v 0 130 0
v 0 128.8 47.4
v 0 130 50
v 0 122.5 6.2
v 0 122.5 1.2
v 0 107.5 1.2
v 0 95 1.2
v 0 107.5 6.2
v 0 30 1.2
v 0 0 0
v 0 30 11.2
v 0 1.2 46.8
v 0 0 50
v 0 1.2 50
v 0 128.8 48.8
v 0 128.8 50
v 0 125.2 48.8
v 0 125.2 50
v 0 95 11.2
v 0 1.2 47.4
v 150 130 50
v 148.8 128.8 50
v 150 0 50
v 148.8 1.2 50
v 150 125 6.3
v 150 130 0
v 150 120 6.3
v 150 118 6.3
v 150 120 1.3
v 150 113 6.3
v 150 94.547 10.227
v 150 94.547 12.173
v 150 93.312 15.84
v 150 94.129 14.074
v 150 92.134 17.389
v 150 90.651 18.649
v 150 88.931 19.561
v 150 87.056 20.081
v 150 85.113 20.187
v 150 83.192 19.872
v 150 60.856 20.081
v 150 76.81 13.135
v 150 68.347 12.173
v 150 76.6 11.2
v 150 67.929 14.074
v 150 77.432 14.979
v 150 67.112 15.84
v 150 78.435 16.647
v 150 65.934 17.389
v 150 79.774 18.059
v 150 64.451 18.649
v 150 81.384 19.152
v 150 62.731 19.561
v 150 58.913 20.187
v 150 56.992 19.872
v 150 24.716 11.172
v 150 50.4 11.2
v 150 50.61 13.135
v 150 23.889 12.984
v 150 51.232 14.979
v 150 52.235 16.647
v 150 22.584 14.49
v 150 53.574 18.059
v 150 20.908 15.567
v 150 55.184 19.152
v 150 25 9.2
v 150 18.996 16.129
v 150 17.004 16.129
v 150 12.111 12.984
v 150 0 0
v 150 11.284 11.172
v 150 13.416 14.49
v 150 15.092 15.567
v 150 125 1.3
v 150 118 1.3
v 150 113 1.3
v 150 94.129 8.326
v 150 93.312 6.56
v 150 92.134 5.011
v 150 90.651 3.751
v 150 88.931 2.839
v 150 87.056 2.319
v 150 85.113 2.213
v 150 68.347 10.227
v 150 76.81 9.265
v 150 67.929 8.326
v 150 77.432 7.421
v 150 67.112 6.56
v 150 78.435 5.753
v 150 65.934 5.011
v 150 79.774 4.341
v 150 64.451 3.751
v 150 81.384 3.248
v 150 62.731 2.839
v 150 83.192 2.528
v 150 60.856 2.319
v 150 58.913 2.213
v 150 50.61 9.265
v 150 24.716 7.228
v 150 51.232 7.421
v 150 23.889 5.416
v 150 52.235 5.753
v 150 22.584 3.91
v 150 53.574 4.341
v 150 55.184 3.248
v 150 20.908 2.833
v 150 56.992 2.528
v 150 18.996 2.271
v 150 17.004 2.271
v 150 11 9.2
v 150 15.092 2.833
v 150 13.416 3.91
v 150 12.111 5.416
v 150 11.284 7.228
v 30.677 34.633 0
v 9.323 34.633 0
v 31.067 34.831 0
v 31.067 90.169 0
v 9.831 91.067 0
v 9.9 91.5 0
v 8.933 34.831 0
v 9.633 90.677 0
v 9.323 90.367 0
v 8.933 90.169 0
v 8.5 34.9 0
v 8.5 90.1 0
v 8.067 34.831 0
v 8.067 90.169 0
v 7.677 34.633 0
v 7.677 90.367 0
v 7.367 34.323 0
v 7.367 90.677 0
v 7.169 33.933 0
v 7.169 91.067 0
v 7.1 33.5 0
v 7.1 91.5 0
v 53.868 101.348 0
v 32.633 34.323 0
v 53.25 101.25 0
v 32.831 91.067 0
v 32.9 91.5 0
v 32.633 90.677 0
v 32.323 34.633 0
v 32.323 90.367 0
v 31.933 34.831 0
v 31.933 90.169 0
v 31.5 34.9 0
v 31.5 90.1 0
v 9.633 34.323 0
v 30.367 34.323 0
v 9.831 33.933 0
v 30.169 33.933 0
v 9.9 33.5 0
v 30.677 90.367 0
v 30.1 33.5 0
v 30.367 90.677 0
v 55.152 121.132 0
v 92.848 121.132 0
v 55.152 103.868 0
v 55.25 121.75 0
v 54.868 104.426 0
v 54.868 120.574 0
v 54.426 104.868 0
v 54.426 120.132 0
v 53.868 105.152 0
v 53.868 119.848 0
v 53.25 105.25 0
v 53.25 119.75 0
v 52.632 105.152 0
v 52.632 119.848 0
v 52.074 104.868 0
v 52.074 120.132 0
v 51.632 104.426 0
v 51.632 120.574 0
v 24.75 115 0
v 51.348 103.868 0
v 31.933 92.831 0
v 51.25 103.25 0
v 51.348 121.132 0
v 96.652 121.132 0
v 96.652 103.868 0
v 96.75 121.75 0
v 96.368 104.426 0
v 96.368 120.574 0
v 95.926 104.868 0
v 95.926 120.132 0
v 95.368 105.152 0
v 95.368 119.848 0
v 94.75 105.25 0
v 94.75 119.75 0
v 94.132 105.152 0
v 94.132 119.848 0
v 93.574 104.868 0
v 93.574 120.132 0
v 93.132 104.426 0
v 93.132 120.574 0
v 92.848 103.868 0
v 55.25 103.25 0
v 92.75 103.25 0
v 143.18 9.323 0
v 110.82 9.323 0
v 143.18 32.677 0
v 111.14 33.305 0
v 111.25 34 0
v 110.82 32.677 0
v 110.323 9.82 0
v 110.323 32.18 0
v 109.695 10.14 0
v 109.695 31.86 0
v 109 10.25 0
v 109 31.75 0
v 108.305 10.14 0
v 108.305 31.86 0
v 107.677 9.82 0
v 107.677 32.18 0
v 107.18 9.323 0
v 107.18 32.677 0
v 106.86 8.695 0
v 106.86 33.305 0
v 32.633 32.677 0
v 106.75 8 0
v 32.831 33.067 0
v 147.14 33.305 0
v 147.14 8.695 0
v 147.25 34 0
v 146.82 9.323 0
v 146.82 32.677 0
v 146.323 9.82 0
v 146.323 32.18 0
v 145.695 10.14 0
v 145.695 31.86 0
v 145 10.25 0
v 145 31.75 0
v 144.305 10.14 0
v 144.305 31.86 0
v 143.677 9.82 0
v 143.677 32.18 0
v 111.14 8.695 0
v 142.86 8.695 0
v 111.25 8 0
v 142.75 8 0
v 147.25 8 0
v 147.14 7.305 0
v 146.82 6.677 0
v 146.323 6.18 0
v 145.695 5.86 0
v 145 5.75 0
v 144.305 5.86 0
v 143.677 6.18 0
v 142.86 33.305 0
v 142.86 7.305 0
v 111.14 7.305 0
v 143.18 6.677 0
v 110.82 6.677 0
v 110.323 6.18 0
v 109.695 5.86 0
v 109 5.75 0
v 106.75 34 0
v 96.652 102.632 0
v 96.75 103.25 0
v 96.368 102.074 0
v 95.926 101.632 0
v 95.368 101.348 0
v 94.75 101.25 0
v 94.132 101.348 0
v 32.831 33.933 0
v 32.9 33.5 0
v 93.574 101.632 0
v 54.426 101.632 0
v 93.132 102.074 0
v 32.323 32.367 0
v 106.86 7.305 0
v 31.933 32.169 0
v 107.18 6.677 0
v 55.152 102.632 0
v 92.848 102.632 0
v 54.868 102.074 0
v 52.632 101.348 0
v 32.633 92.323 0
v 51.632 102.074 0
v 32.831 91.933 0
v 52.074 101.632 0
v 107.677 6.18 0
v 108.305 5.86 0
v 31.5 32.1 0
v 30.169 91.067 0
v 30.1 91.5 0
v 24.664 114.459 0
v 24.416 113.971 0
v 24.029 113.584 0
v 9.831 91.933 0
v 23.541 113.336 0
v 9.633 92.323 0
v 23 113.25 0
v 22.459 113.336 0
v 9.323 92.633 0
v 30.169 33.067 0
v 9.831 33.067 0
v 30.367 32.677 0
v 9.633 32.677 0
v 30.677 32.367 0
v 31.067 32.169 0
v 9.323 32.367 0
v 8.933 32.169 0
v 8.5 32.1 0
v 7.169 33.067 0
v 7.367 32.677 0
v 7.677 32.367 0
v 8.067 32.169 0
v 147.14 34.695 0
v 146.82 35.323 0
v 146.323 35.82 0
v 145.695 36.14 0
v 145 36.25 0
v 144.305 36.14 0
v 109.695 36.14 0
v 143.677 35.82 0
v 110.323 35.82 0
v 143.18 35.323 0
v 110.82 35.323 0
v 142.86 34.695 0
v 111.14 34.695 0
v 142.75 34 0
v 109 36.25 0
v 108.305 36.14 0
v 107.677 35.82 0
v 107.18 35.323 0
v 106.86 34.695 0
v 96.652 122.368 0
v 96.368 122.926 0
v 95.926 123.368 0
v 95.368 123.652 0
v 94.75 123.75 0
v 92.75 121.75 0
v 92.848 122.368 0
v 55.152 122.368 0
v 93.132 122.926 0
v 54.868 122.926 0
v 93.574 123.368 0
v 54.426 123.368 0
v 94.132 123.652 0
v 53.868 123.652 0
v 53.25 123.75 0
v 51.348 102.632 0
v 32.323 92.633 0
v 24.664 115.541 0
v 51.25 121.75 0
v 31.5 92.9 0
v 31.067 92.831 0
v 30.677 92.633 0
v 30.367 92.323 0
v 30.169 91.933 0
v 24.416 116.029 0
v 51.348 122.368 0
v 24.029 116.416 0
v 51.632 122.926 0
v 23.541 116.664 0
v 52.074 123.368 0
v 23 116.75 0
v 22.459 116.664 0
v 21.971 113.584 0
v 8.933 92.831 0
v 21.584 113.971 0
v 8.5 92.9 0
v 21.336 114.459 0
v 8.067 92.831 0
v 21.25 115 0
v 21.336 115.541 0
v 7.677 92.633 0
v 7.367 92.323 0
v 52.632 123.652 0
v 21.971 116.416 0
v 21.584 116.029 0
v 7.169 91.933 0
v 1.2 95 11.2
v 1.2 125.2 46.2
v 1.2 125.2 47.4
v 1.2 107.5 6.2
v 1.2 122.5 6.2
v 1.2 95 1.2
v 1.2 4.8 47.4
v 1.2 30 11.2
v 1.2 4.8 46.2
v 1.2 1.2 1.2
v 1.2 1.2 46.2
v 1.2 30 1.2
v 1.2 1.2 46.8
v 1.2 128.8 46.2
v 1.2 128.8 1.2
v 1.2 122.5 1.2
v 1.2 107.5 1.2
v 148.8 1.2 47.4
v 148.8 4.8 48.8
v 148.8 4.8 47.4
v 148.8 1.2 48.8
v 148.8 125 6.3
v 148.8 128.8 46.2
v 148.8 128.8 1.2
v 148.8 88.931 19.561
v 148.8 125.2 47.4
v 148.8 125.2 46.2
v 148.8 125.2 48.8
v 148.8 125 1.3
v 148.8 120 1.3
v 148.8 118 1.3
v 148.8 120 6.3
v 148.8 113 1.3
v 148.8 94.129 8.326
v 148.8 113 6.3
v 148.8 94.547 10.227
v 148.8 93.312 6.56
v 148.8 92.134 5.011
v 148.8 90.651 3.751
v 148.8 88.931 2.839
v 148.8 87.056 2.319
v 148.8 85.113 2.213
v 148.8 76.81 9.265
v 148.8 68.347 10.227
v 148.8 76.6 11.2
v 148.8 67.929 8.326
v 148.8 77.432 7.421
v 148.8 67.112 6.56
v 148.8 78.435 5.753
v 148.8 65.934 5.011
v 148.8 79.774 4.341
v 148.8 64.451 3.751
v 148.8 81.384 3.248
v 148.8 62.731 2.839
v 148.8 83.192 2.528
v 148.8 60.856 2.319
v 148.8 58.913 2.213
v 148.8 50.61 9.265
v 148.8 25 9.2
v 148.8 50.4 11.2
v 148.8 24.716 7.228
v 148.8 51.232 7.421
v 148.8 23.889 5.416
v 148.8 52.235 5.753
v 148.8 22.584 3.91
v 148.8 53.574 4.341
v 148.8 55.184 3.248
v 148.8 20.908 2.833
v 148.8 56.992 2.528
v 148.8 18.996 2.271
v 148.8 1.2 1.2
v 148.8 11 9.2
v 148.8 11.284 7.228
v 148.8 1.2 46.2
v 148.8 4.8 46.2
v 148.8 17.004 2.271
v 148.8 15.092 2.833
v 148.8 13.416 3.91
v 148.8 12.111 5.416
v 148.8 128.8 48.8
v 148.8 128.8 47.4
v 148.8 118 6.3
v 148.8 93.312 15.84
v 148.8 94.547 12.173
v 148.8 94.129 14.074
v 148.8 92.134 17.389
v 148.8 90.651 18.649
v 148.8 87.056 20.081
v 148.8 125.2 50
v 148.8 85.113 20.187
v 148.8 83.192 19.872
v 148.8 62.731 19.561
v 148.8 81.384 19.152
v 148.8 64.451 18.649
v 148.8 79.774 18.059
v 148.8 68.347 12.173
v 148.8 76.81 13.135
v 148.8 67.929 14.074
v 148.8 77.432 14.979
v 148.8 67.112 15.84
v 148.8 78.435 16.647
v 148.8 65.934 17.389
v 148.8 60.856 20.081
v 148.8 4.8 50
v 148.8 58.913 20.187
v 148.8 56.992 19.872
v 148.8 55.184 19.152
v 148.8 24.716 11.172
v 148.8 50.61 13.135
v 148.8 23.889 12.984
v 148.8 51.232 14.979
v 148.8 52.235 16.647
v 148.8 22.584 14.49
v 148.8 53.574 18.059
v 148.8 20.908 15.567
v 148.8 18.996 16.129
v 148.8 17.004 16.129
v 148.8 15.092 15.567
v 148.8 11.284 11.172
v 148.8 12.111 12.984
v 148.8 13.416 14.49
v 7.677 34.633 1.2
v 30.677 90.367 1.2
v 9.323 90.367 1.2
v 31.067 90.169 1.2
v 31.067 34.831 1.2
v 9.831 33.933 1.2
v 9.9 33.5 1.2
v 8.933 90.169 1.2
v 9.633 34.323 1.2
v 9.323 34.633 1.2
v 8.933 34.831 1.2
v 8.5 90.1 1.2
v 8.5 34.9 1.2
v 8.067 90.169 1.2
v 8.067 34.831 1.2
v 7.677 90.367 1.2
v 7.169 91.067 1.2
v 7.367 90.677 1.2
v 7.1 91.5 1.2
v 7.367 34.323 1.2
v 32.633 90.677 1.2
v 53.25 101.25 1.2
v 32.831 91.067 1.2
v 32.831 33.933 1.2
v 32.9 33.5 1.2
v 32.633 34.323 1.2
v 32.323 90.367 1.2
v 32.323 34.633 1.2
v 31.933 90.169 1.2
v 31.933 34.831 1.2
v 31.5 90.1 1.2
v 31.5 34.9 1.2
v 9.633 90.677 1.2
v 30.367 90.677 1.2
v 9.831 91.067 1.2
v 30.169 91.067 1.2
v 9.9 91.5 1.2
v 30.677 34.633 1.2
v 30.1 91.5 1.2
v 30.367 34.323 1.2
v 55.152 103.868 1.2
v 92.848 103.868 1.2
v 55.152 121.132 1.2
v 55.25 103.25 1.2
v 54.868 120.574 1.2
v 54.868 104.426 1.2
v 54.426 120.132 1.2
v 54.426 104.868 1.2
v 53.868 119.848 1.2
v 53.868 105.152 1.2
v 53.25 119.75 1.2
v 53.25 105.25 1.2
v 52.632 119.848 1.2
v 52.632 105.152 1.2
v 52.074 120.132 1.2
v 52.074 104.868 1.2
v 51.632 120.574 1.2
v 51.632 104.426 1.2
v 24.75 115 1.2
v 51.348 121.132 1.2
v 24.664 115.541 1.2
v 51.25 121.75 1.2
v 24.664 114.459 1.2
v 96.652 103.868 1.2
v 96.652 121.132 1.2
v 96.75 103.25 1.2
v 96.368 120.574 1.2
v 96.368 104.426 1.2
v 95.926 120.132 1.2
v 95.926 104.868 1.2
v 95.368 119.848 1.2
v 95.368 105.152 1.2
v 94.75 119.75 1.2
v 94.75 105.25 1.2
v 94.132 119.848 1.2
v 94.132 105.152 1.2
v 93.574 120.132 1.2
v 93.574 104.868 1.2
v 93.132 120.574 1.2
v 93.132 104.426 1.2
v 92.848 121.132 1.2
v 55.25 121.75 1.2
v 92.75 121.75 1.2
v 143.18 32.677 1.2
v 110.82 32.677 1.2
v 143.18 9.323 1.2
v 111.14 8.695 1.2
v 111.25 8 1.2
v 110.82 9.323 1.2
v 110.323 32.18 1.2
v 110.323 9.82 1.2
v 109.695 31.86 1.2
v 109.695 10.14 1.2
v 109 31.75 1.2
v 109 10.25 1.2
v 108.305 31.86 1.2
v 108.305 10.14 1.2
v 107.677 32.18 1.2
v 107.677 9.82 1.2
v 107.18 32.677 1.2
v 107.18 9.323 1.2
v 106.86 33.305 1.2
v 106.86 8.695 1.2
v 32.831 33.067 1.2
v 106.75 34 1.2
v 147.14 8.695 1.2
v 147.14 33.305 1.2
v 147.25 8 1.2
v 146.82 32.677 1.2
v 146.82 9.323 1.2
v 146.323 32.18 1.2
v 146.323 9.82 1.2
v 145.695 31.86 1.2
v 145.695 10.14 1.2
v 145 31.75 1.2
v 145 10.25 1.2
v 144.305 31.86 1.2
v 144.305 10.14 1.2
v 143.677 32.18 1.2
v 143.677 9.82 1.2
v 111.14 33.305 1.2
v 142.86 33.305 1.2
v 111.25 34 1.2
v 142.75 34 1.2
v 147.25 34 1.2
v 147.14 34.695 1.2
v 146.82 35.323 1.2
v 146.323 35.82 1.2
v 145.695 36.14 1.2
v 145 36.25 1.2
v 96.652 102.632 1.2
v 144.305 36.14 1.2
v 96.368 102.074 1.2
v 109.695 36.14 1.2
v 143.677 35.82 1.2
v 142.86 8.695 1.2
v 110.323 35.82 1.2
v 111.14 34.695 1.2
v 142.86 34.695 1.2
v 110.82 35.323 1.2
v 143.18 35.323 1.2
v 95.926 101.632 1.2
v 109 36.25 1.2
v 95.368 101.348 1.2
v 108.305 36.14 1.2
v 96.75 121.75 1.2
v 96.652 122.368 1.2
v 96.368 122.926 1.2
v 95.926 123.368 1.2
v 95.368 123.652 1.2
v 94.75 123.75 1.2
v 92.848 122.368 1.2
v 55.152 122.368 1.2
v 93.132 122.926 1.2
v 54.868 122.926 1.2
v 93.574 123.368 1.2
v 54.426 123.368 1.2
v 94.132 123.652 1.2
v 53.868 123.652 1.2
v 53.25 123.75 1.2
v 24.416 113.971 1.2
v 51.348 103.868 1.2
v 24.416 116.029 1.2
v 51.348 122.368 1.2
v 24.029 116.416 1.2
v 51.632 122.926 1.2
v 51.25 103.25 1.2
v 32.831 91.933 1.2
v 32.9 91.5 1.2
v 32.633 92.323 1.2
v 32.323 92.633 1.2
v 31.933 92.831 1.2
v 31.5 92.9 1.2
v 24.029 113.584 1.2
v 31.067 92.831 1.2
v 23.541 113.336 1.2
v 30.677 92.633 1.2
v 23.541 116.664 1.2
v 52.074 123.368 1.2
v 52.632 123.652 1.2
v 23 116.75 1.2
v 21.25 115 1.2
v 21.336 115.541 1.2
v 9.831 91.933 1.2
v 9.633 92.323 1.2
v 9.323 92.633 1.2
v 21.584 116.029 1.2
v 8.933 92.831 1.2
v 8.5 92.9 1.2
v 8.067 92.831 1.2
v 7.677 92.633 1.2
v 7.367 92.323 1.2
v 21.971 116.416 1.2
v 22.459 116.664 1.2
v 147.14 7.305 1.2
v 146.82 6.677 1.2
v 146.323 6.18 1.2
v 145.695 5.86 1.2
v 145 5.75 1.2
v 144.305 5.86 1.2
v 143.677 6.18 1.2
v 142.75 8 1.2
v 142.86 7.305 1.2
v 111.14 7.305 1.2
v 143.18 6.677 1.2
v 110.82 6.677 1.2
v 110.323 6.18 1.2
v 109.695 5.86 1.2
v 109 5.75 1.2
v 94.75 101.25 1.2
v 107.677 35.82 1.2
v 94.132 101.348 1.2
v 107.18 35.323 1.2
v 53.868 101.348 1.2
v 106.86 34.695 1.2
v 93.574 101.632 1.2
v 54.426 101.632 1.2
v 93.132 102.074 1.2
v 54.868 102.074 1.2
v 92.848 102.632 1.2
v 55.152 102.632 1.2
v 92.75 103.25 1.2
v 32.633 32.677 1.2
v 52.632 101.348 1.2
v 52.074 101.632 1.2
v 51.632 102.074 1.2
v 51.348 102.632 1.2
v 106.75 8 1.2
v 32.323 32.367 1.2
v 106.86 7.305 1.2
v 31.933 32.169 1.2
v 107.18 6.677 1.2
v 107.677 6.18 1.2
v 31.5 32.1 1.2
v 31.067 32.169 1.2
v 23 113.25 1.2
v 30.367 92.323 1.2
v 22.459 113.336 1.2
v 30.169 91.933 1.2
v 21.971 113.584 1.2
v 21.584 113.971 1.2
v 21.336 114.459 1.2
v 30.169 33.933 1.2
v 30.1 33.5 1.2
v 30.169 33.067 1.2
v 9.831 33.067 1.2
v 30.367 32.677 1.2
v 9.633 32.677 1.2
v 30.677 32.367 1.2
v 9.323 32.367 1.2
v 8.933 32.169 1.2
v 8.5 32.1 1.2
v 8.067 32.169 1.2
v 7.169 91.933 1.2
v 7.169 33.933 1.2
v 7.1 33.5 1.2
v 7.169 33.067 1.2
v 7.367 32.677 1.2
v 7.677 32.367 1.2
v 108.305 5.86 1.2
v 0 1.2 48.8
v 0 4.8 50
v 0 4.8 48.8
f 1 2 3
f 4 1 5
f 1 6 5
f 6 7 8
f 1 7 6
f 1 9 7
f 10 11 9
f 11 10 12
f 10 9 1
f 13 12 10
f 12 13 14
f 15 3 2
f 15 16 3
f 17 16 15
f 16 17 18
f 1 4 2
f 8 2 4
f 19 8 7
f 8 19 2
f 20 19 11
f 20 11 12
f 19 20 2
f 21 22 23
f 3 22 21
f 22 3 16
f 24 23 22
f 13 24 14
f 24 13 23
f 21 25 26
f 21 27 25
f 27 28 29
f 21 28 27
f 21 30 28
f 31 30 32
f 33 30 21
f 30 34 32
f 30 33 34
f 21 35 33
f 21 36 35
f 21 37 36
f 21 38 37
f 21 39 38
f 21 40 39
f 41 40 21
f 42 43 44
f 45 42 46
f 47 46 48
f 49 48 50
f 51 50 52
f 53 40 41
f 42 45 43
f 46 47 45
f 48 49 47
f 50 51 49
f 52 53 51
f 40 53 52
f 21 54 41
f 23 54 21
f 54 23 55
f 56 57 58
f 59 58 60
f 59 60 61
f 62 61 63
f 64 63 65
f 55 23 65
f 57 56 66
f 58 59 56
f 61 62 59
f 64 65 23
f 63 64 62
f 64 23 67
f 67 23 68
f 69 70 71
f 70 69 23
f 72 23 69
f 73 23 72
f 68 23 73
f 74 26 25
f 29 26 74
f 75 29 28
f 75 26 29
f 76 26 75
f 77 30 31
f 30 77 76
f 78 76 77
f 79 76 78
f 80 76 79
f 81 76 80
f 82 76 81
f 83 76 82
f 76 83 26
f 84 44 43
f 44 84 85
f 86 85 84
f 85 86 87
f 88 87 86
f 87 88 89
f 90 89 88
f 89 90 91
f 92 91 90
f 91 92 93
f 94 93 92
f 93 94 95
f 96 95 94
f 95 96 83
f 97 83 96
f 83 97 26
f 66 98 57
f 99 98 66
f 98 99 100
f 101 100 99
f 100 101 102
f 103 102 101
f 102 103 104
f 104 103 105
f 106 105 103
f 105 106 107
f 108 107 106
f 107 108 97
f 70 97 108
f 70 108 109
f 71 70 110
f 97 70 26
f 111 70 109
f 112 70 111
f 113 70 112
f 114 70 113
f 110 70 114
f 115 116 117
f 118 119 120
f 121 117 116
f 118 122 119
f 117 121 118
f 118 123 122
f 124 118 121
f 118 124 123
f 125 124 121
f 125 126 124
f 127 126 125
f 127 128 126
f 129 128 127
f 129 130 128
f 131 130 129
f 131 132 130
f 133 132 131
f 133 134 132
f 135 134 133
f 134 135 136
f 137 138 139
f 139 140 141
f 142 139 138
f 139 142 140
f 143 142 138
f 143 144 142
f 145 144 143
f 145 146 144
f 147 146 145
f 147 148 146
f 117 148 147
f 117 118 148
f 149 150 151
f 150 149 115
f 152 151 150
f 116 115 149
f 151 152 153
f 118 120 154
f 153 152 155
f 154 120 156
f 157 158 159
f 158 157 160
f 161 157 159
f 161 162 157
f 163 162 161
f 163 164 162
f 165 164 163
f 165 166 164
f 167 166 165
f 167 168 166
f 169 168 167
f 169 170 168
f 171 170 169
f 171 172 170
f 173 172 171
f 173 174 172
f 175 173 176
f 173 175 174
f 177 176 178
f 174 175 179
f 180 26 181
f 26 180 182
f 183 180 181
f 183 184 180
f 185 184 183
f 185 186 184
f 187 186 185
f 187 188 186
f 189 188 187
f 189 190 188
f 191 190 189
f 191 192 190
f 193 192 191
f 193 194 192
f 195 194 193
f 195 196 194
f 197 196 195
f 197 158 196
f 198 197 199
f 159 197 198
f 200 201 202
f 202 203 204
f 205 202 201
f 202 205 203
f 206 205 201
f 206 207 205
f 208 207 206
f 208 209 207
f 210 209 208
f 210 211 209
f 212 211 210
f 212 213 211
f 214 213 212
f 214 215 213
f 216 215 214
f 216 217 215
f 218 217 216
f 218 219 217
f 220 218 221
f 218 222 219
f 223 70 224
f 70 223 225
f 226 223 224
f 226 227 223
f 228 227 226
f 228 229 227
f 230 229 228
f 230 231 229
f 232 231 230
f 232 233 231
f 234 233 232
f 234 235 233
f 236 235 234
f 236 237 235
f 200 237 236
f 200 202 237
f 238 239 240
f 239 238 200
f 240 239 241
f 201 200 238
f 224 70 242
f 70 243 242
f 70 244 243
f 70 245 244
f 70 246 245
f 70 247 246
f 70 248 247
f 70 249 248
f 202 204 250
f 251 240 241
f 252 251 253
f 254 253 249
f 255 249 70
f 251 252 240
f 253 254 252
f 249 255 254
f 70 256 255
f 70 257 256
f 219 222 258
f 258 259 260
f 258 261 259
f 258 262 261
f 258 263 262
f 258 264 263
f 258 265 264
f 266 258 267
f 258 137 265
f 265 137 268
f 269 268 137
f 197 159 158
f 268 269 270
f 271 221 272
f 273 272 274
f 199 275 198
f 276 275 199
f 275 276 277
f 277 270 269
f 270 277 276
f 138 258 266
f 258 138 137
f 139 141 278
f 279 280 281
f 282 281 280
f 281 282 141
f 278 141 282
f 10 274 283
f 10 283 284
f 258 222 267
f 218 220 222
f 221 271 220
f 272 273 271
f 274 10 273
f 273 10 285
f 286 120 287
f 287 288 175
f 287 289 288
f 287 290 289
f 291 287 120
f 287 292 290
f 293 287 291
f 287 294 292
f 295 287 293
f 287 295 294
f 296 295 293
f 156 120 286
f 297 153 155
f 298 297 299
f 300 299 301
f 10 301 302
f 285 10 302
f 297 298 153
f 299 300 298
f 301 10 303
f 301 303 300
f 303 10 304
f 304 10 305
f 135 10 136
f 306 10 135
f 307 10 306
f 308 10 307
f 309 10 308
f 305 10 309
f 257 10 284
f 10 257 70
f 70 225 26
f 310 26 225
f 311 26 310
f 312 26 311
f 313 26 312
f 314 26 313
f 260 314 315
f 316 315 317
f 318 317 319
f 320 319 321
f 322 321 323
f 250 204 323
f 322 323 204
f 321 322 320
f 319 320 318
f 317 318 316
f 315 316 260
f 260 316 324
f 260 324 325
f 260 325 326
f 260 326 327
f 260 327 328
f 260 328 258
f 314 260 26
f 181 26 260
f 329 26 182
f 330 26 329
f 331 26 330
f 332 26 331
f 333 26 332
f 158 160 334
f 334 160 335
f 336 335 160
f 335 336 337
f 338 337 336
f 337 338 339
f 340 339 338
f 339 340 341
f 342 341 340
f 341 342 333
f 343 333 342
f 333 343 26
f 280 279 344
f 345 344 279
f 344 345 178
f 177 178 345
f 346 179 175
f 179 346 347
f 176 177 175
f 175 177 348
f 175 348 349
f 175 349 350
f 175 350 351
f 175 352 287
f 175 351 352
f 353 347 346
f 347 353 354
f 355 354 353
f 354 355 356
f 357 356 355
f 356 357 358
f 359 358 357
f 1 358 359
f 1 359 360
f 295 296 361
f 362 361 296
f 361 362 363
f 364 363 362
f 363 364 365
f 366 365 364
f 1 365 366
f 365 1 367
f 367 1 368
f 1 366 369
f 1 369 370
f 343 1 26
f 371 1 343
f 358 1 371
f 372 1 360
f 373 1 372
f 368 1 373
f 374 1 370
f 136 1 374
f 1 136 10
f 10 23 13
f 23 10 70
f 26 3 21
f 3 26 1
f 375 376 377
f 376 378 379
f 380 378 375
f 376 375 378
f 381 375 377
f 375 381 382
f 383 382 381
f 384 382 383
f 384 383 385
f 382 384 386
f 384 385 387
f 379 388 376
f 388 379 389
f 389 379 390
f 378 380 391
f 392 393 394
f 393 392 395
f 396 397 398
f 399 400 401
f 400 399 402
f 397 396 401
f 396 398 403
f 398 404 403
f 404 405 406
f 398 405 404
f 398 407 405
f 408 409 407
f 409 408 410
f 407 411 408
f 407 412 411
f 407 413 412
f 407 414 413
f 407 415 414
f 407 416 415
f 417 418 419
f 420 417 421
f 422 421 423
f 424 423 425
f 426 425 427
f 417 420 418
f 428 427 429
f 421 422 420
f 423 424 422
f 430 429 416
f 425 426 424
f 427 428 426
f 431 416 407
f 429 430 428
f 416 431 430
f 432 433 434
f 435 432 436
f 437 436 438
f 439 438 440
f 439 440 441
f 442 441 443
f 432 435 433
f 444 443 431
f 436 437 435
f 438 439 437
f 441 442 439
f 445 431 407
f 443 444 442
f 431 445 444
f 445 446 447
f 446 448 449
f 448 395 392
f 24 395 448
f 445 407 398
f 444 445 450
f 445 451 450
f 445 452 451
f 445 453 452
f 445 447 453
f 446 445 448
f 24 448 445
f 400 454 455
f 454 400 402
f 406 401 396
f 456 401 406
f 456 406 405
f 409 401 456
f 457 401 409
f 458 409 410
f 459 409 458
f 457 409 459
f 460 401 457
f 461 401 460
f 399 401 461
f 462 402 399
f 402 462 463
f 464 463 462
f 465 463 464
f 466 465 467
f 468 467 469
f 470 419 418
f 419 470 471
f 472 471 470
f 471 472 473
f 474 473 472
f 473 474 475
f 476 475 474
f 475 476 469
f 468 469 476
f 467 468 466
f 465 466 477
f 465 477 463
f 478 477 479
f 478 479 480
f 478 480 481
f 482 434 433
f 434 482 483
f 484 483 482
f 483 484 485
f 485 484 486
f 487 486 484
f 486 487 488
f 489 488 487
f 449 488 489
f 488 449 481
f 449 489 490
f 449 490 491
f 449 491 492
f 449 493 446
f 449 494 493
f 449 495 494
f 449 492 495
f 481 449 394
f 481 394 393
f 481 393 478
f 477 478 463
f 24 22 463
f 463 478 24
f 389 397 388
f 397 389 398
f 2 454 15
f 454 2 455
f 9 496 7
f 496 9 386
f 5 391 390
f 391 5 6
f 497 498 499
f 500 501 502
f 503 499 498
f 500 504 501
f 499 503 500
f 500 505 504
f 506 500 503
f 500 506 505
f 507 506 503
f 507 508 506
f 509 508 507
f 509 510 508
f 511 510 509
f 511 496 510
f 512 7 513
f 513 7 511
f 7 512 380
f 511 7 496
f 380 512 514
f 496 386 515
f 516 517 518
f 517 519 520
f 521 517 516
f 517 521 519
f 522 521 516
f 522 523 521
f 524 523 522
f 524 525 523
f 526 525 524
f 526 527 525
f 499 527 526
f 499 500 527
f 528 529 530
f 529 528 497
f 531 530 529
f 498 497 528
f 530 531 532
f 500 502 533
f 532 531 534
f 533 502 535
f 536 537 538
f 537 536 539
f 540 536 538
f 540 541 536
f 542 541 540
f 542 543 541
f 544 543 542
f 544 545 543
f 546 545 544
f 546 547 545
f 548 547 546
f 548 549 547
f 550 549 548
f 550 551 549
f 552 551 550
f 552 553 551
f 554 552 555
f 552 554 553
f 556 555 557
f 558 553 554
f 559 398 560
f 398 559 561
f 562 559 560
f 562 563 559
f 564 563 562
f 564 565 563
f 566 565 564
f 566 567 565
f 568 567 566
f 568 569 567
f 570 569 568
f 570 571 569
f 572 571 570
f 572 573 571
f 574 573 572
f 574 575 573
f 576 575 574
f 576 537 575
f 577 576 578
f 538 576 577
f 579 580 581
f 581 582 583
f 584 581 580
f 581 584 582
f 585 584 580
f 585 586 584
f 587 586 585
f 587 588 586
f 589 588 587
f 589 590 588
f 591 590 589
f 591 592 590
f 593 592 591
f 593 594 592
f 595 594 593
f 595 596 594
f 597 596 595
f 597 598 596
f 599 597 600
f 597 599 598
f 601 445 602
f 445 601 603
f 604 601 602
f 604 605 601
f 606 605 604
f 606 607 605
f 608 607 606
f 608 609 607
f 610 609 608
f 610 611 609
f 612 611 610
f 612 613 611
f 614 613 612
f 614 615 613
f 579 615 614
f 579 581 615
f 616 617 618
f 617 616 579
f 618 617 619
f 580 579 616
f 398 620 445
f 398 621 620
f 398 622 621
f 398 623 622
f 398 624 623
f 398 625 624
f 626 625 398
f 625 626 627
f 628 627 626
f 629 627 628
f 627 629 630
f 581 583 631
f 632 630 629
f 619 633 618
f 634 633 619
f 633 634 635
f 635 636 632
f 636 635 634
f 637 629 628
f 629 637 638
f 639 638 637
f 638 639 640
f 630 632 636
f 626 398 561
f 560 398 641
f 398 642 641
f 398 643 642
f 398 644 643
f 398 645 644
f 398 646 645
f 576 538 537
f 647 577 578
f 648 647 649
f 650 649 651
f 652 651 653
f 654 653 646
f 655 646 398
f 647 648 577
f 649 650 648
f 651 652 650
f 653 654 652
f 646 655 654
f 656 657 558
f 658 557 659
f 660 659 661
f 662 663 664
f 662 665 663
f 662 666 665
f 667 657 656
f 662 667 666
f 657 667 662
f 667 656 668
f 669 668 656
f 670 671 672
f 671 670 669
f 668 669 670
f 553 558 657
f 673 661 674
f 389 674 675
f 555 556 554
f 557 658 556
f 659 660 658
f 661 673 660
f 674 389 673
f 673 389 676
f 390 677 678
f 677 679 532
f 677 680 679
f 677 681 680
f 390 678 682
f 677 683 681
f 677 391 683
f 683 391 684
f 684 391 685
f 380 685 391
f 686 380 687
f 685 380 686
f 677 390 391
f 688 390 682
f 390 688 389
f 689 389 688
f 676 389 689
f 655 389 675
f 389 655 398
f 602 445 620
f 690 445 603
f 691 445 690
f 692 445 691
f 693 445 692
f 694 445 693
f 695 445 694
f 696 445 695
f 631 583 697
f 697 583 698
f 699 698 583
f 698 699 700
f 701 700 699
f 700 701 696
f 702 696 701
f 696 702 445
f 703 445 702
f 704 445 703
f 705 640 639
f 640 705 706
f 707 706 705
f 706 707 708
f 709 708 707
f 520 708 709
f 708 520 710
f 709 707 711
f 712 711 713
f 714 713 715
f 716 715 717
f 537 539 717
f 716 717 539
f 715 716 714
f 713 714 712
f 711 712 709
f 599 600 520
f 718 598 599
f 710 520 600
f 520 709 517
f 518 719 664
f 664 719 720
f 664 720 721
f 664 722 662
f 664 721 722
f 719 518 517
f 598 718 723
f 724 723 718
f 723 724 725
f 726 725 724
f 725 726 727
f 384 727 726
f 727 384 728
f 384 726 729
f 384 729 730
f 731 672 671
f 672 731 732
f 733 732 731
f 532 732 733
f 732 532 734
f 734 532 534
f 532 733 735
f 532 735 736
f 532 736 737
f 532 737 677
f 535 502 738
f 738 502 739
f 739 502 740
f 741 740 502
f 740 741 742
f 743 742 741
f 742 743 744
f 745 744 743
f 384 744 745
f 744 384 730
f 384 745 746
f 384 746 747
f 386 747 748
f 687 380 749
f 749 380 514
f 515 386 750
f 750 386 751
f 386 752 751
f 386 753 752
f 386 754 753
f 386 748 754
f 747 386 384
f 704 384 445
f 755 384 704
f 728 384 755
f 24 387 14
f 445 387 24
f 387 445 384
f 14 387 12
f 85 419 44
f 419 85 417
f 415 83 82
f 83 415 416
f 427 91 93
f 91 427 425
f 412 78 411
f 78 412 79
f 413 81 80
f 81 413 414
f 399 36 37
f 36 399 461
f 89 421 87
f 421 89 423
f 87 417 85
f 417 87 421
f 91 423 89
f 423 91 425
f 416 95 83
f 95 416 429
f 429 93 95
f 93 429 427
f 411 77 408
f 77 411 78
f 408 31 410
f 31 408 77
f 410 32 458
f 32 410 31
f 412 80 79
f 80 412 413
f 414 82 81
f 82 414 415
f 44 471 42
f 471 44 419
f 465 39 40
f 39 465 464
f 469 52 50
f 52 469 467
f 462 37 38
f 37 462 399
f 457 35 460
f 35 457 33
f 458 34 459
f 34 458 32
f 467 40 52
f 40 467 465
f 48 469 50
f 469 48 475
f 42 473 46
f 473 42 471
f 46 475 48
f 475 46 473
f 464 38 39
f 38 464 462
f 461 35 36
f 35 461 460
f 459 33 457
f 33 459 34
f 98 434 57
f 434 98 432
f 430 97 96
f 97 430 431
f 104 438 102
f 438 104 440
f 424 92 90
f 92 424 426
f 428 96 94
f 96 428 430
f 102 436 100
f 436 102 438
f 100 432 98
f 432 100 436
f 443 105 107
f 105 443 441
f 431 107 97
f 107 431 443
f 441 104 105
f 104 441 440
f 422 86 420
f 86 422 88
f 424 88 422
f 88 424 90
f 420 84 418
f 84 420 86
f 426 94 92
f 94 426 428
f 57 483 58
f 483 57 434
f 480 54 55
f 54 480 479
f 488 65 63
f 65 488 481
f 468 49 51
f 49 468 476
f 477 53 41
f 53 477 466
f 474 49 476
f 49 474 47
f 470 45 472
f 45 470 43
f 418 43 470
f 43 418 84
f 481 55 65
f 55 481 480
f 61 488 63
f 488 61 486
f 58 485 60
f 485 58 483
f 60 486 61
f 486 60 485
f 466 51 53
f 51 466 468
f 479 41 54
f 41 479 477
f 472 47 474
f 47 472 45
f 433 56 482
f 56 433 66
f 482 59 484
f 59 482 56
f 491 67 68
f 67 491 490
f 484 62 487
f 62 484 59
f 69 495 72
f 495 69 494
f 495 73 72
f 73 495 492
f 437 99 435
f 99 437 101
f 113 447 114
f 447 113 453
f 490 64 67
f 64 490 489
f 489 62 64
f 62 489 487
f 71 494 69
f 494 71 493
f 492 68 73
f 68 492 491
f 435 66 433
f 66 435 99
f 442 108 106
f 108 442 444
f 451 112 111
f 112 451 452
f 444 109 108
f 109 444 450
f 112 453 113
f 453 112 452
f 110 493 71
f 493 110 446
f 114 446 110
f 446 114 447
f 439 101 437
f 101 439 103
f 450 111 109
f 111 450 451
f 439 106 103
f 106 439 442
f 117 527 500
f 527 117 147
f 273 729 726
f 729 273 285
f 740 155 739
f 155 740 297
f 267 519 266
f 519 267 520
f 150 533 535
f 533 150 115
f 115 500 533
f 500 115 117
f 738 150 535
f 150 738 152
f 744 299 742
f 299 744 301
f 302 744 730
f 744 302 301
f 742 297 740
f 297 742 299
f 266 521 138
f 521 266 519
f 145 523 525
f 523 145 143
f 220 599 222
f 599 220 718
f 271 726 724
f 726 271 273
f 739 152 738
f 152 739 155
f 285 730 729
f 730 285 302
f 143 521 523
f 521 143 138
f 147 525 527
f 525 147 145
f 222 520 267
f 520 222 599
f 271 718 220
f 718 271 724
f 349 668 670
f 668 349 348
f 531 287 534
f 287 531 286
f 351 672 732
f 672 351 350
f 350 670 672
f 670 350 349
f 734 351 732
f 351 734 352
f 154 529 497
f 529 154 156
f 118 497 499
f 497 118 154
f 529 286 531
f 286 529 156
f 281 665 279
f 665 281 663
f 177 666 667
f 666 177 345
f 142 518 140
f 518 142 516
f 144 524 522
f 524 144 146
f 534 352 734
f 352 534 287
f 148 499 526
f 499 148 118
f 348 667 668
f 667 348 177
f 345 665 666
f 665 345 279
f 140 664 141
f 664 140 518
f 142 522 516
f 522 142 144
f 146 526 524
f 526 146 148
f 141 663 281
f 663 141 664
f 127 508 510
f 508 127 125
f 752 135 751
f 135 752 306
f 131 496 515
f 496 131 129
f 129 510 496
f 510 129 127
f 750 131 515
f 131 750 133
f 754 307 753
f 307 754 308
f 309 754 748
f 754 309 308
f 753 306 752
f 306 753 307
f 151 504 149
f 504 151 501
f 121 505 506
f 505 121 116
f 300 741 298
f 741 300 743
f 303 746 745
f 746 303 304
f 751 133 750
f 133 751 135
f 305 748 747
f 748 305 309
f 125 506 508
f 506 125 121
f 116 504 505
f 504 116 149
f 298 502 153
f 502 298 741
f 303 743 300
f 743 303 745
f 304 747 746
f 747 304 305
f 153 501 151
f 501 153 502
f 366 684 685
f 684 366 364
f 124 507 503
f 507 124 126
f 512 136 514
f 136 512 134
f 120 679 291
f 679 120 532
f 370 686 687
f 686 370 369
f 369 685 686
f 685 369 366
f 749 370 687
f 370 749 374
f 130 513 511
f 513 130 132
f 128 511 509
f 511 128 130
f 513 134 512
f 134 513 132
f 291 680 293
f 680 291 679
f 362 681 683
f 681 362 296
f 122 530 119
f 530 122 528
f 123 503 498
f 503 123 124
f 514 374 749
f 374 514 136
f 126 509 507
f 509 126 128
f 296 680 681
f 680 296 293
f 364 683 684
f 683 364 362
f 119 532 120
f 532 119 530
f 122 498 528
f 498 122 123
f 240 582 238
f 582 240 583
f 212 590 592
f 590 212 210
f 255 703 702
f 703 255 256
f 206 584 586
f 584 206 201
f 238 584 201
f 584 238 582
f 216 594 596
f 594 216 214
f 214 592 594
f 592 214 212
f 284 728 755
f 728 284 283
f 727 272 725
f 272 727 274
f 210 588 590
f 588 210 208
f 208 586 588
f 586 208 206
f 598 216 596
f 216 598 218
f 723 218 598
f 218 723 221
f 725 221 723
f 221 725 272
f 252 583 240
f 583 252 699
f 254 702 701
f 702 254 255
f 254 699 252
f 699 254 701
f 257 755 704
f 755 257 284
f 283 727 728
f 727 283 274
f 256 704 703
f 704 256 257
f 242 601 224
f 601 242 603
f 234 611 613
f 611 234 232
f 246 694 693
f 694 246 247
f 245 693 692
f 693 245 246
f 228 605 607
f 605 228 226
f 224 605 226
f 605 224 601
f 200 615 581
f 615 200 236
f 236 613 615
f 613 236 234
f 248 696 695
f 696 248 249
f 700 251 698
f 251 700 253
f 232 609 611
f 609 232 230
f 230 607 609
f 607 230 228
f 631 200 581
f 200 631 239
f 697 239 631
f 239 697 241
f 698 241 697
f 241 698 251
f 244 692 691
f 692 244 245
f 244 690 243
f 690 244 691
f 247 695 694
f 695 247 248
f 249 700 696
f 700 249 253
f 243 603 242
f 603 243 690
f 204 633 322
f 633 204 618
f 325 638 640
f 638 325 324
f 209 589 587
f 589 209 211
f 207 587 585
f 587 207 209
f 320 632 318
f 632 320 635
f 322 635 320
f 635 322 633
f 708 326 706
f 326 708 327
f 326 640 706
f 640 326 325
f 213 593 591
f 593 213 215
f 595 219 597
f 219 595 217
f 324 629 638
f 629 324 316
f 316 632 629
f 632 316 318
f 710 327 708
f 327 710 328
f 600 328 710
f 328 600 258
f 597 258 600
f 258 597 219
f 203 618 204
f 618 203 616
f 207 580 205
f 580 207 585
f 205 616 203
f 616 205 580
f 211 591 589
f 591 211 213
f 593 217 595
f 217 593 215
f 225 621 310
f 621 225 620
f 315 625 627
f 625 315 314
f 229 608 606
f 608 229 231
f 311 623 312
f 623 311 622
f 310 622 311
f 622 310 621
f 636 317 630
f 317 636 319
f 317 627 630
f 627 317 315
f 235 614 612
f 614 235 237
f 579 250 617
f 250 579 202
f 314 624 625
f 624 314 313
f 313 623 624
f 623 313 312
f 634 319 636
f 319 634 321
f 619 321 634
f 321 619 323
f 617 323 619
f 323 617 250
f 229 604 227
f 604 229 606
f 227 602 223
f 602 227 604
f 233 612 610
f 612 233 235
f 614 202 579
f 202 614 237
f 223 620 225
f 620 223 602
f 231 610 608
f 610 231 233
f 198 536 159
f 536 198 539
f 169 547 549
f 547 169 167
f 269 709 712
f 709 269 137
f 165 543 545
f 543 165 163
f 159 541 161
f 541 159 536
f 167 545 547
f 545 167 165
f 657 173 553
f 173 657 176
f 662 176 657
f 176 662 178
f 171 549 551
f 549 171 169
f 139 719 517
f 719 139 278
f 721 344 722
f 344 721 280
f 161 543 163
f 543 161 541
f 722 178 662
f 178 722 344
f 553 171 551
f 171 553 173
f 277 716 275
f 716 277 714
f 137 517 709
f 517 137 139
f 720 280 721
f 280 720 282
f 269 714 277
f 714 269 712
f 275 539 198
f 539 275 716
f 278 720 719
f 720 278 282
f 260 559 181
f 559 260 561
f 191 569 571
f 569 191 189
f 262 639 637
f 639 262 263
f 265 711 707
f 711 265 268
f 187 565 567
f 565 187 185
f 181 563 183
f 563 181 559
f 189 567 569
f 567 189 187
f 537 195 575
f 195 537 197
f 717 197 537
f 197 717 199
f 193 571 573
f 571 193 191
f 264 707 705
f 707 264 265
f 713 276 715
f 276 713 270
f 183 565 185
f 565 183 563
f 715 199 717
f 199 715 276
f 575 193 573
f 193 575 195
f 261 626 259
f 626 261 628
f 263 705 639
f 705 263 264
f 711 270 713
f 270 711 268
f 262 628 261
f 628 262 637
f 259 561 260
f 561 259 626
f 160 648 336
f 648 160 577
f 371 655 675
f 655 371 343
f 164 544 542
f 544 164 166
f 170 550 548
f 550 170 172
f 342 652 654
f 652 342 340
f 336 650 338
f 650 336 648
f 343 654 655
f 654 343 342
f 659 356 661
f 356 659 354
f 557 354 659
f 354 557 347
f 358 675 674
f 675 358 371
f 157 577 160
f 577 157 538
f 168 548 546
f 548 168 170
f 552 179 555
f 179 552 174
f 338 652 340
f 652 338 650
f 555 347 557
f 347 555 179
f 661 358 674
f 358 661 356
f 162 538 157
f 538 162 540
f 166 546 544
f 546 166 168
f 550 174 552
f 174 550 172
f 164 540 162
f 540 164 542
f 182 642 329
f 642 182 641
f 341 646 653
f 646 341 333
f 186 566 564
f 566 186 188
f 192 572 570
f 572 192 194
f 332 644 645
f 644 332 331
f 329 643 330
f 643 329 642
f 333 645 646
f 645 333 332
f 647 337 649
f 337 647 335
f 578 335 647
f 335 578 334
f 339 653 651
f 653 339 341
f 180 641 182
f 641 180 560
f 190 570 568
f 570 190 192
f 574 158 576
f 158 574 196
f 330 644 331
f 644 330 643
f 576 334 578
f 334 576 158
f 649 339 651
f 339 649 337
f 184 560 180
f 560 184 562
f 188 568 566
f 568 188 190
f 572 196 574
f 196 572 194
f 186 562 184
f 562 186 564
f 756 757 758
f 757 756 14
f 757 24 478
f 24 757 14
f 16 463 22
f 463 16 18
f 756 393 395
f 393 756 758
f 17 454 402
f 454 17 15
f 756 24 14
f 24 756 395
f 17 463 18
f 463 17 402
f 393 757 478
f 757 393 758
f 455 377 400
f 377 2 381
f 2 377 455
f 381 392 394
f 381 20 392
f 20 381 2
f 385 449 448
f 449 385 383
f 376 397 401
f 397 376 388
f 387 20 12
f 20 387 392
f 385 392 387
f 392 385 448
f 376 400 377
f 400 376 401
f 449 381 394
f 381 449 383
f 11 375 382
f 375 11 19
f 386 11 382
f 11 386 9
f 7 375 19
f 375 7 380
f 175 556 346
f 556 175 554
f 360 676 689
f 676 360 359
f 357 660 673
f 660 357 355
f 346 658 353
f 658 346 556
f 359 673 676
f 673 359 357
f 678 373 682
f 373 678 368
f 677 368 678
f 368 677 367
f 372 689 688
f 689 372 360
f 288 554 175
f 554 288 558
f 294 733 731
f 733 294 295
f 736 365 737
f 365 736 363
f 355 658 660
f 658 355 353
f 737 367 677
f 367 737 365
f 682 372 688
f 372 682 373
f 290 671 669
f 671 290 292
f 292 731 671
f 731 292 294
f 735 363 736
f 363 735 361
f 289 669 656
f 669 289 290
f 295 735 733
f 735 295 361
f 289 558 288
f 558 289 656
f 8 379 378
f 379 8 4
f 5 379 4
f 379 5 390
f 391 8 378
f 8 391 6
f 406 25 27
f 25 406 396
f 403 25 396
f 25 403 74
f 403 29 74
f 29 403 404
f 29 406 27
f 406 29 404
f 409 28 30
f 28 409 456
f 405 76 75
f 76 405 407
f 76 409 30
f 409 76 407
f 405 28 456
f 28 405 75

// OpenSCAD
module ultrasonic(){
union(){
cube([45,1.6,20]);

translate([8+1.4,1.6,10])
rotate([-90,0,0])
cylinder(12,9,9);

translate([37-1.4,1.6,10])
rotate([-90,0,0])
cylinder(12,9,9);}
}


module ph(){
union(){
cube([32,42,1]);
translate([8,0,0])
cube([10,10,10]);

translate([13,0,8])
rotate([90,0,0])
cylinder(20,7,7);}}

module raspiscrew(){
translate([3.5,3.5,0])
cylinder(30,d=2.8,$fn=20);
translate([65-3.5,3.5,0])
cylinder(30,d=2.8,$fn=20);
translate([3.5,30-3.5,0])
cylinder(30,d=2.8,$fn=20);
translate([65-3.5,30-3.5,0])
cylinder(30,d=2.8,$fn=20);
}

module phscrews(){
translate([3,3,0])
cylinder(30,d=4.5,$fn=20);
translate([42-3,3,0])
cylinder(30,d=4.5,$fn=20);
translate([3,32-3,0])
cylinder(30,d=4.5,$fn=20);
translate([42-3,32-3,0])
cylinder(30,d=4.5,$fn=20);
}

module adcscrew(){
translate([3.25,3.25])
cylinder(30,d=4,$fn=20);
translate([48-3.25,3.25])
cylinder(30,d=4,$fn=20);
translate([3.25,25-3.25])
cylinder(30,d=4,$fn=20);
translate([48-3.25,25-3.25])
cylinder(30,d=4,$fn=20);}
/*
difference(){
cube([100,50,20]);
    translate([1,1,1])
cube([98,48,20]);
}
*/

module hollow(size=[10,10,10],thickness = 1){
    
   difference(){
cube([size[0],size[1],size[2]]);
    translate([thickness,thickness,thickness])
cube([size[0]-thickness * 2,size[1]-thickness * 2,size[2]]);
} 
    
}

module box(){
difference(){
hollow(size= [200-50,130,50],thickness = 1.2);

translate([-2,1.2,48.8-2])
cube([50,127.6,4]);}

translate([0,1.2,48.8-2.6])
difference(){
cube([150,127.6,1.2]);
    translate([1.2,3.6,0])
    cube([150 - 2.4,127.6-7.2,1.2]);
    
    }
    
    
translate([0,1.2,48.8-2.4+2.4])
difference(){
cube([150,127.6,1.2]);
    translate([1.2,3.6,0])
    cube([150 - 2.4,127.6-7.2,1.2]);
    translate([0,3.6,0])
    cube([1.2,127.6-7.2,1.2]);
    }
    
};

//translate([37,30,1])
//rotate([0,0,90])
//color("red")
//hollow(size= [65,35,10]); //raspberry pi

//color("orange")
//translate([100,10,1])
//rotate([0,0,90])
//hollow(size= [85,55,10]); //breadboard

//color("blue")
//translate([50,100,1])
//rotate([0,0,0])
//hollow(size= [45,25,10]);  //ADC


//color("grey")
//translate([1,110,1])
//rotate([0,0,0])
//hollow(size= [40,15,10]);  //Light module



//color("pink")
//translate([145,95,1.2])
//rotate([0,0,-90])
//ultrasonic();  //Ultrasonic

//color("green")
//rotate([0,0,90])
//translate([5,-148,1.2])
//ph();


//cube([42,32,2]);


difference(){
difference(){

    difference(){

    box();
        translate([-20,65-35,1.2])
    cube([45,65,10]);
    }
color("pink")
translate([145,95,1.2])
rotate([0,0,-90])
ultrasonic();  //Ultrasonic
}
color("green")
rotate([0,0,90])
translate([5,-148,1.2])
ph();


rotate([0,0,90])
translate([30,-35,0])
raspiscrew();
translate([23,115,0])
cylinder(h=30,d=3.5,$fn=20);

translate([10,115,3.7])
cube([30,15,5],center=true);

translate([106,5,-.7])
phscrews();


translate([146,120,1.3])
cube([5,5,5]);
translate([146,113,1.3])
cube([5,5,5]);


translate([50,100,0])
adcscrew();
}

//color("red")
//translate([2.4,2.4,0])
 //   cube([10 - 2.4-2.4,127.6-2.4-2.4,1.2]);
//translate([0,1.2,50])
//cube([150-1.2,130-2.4,1]); 
